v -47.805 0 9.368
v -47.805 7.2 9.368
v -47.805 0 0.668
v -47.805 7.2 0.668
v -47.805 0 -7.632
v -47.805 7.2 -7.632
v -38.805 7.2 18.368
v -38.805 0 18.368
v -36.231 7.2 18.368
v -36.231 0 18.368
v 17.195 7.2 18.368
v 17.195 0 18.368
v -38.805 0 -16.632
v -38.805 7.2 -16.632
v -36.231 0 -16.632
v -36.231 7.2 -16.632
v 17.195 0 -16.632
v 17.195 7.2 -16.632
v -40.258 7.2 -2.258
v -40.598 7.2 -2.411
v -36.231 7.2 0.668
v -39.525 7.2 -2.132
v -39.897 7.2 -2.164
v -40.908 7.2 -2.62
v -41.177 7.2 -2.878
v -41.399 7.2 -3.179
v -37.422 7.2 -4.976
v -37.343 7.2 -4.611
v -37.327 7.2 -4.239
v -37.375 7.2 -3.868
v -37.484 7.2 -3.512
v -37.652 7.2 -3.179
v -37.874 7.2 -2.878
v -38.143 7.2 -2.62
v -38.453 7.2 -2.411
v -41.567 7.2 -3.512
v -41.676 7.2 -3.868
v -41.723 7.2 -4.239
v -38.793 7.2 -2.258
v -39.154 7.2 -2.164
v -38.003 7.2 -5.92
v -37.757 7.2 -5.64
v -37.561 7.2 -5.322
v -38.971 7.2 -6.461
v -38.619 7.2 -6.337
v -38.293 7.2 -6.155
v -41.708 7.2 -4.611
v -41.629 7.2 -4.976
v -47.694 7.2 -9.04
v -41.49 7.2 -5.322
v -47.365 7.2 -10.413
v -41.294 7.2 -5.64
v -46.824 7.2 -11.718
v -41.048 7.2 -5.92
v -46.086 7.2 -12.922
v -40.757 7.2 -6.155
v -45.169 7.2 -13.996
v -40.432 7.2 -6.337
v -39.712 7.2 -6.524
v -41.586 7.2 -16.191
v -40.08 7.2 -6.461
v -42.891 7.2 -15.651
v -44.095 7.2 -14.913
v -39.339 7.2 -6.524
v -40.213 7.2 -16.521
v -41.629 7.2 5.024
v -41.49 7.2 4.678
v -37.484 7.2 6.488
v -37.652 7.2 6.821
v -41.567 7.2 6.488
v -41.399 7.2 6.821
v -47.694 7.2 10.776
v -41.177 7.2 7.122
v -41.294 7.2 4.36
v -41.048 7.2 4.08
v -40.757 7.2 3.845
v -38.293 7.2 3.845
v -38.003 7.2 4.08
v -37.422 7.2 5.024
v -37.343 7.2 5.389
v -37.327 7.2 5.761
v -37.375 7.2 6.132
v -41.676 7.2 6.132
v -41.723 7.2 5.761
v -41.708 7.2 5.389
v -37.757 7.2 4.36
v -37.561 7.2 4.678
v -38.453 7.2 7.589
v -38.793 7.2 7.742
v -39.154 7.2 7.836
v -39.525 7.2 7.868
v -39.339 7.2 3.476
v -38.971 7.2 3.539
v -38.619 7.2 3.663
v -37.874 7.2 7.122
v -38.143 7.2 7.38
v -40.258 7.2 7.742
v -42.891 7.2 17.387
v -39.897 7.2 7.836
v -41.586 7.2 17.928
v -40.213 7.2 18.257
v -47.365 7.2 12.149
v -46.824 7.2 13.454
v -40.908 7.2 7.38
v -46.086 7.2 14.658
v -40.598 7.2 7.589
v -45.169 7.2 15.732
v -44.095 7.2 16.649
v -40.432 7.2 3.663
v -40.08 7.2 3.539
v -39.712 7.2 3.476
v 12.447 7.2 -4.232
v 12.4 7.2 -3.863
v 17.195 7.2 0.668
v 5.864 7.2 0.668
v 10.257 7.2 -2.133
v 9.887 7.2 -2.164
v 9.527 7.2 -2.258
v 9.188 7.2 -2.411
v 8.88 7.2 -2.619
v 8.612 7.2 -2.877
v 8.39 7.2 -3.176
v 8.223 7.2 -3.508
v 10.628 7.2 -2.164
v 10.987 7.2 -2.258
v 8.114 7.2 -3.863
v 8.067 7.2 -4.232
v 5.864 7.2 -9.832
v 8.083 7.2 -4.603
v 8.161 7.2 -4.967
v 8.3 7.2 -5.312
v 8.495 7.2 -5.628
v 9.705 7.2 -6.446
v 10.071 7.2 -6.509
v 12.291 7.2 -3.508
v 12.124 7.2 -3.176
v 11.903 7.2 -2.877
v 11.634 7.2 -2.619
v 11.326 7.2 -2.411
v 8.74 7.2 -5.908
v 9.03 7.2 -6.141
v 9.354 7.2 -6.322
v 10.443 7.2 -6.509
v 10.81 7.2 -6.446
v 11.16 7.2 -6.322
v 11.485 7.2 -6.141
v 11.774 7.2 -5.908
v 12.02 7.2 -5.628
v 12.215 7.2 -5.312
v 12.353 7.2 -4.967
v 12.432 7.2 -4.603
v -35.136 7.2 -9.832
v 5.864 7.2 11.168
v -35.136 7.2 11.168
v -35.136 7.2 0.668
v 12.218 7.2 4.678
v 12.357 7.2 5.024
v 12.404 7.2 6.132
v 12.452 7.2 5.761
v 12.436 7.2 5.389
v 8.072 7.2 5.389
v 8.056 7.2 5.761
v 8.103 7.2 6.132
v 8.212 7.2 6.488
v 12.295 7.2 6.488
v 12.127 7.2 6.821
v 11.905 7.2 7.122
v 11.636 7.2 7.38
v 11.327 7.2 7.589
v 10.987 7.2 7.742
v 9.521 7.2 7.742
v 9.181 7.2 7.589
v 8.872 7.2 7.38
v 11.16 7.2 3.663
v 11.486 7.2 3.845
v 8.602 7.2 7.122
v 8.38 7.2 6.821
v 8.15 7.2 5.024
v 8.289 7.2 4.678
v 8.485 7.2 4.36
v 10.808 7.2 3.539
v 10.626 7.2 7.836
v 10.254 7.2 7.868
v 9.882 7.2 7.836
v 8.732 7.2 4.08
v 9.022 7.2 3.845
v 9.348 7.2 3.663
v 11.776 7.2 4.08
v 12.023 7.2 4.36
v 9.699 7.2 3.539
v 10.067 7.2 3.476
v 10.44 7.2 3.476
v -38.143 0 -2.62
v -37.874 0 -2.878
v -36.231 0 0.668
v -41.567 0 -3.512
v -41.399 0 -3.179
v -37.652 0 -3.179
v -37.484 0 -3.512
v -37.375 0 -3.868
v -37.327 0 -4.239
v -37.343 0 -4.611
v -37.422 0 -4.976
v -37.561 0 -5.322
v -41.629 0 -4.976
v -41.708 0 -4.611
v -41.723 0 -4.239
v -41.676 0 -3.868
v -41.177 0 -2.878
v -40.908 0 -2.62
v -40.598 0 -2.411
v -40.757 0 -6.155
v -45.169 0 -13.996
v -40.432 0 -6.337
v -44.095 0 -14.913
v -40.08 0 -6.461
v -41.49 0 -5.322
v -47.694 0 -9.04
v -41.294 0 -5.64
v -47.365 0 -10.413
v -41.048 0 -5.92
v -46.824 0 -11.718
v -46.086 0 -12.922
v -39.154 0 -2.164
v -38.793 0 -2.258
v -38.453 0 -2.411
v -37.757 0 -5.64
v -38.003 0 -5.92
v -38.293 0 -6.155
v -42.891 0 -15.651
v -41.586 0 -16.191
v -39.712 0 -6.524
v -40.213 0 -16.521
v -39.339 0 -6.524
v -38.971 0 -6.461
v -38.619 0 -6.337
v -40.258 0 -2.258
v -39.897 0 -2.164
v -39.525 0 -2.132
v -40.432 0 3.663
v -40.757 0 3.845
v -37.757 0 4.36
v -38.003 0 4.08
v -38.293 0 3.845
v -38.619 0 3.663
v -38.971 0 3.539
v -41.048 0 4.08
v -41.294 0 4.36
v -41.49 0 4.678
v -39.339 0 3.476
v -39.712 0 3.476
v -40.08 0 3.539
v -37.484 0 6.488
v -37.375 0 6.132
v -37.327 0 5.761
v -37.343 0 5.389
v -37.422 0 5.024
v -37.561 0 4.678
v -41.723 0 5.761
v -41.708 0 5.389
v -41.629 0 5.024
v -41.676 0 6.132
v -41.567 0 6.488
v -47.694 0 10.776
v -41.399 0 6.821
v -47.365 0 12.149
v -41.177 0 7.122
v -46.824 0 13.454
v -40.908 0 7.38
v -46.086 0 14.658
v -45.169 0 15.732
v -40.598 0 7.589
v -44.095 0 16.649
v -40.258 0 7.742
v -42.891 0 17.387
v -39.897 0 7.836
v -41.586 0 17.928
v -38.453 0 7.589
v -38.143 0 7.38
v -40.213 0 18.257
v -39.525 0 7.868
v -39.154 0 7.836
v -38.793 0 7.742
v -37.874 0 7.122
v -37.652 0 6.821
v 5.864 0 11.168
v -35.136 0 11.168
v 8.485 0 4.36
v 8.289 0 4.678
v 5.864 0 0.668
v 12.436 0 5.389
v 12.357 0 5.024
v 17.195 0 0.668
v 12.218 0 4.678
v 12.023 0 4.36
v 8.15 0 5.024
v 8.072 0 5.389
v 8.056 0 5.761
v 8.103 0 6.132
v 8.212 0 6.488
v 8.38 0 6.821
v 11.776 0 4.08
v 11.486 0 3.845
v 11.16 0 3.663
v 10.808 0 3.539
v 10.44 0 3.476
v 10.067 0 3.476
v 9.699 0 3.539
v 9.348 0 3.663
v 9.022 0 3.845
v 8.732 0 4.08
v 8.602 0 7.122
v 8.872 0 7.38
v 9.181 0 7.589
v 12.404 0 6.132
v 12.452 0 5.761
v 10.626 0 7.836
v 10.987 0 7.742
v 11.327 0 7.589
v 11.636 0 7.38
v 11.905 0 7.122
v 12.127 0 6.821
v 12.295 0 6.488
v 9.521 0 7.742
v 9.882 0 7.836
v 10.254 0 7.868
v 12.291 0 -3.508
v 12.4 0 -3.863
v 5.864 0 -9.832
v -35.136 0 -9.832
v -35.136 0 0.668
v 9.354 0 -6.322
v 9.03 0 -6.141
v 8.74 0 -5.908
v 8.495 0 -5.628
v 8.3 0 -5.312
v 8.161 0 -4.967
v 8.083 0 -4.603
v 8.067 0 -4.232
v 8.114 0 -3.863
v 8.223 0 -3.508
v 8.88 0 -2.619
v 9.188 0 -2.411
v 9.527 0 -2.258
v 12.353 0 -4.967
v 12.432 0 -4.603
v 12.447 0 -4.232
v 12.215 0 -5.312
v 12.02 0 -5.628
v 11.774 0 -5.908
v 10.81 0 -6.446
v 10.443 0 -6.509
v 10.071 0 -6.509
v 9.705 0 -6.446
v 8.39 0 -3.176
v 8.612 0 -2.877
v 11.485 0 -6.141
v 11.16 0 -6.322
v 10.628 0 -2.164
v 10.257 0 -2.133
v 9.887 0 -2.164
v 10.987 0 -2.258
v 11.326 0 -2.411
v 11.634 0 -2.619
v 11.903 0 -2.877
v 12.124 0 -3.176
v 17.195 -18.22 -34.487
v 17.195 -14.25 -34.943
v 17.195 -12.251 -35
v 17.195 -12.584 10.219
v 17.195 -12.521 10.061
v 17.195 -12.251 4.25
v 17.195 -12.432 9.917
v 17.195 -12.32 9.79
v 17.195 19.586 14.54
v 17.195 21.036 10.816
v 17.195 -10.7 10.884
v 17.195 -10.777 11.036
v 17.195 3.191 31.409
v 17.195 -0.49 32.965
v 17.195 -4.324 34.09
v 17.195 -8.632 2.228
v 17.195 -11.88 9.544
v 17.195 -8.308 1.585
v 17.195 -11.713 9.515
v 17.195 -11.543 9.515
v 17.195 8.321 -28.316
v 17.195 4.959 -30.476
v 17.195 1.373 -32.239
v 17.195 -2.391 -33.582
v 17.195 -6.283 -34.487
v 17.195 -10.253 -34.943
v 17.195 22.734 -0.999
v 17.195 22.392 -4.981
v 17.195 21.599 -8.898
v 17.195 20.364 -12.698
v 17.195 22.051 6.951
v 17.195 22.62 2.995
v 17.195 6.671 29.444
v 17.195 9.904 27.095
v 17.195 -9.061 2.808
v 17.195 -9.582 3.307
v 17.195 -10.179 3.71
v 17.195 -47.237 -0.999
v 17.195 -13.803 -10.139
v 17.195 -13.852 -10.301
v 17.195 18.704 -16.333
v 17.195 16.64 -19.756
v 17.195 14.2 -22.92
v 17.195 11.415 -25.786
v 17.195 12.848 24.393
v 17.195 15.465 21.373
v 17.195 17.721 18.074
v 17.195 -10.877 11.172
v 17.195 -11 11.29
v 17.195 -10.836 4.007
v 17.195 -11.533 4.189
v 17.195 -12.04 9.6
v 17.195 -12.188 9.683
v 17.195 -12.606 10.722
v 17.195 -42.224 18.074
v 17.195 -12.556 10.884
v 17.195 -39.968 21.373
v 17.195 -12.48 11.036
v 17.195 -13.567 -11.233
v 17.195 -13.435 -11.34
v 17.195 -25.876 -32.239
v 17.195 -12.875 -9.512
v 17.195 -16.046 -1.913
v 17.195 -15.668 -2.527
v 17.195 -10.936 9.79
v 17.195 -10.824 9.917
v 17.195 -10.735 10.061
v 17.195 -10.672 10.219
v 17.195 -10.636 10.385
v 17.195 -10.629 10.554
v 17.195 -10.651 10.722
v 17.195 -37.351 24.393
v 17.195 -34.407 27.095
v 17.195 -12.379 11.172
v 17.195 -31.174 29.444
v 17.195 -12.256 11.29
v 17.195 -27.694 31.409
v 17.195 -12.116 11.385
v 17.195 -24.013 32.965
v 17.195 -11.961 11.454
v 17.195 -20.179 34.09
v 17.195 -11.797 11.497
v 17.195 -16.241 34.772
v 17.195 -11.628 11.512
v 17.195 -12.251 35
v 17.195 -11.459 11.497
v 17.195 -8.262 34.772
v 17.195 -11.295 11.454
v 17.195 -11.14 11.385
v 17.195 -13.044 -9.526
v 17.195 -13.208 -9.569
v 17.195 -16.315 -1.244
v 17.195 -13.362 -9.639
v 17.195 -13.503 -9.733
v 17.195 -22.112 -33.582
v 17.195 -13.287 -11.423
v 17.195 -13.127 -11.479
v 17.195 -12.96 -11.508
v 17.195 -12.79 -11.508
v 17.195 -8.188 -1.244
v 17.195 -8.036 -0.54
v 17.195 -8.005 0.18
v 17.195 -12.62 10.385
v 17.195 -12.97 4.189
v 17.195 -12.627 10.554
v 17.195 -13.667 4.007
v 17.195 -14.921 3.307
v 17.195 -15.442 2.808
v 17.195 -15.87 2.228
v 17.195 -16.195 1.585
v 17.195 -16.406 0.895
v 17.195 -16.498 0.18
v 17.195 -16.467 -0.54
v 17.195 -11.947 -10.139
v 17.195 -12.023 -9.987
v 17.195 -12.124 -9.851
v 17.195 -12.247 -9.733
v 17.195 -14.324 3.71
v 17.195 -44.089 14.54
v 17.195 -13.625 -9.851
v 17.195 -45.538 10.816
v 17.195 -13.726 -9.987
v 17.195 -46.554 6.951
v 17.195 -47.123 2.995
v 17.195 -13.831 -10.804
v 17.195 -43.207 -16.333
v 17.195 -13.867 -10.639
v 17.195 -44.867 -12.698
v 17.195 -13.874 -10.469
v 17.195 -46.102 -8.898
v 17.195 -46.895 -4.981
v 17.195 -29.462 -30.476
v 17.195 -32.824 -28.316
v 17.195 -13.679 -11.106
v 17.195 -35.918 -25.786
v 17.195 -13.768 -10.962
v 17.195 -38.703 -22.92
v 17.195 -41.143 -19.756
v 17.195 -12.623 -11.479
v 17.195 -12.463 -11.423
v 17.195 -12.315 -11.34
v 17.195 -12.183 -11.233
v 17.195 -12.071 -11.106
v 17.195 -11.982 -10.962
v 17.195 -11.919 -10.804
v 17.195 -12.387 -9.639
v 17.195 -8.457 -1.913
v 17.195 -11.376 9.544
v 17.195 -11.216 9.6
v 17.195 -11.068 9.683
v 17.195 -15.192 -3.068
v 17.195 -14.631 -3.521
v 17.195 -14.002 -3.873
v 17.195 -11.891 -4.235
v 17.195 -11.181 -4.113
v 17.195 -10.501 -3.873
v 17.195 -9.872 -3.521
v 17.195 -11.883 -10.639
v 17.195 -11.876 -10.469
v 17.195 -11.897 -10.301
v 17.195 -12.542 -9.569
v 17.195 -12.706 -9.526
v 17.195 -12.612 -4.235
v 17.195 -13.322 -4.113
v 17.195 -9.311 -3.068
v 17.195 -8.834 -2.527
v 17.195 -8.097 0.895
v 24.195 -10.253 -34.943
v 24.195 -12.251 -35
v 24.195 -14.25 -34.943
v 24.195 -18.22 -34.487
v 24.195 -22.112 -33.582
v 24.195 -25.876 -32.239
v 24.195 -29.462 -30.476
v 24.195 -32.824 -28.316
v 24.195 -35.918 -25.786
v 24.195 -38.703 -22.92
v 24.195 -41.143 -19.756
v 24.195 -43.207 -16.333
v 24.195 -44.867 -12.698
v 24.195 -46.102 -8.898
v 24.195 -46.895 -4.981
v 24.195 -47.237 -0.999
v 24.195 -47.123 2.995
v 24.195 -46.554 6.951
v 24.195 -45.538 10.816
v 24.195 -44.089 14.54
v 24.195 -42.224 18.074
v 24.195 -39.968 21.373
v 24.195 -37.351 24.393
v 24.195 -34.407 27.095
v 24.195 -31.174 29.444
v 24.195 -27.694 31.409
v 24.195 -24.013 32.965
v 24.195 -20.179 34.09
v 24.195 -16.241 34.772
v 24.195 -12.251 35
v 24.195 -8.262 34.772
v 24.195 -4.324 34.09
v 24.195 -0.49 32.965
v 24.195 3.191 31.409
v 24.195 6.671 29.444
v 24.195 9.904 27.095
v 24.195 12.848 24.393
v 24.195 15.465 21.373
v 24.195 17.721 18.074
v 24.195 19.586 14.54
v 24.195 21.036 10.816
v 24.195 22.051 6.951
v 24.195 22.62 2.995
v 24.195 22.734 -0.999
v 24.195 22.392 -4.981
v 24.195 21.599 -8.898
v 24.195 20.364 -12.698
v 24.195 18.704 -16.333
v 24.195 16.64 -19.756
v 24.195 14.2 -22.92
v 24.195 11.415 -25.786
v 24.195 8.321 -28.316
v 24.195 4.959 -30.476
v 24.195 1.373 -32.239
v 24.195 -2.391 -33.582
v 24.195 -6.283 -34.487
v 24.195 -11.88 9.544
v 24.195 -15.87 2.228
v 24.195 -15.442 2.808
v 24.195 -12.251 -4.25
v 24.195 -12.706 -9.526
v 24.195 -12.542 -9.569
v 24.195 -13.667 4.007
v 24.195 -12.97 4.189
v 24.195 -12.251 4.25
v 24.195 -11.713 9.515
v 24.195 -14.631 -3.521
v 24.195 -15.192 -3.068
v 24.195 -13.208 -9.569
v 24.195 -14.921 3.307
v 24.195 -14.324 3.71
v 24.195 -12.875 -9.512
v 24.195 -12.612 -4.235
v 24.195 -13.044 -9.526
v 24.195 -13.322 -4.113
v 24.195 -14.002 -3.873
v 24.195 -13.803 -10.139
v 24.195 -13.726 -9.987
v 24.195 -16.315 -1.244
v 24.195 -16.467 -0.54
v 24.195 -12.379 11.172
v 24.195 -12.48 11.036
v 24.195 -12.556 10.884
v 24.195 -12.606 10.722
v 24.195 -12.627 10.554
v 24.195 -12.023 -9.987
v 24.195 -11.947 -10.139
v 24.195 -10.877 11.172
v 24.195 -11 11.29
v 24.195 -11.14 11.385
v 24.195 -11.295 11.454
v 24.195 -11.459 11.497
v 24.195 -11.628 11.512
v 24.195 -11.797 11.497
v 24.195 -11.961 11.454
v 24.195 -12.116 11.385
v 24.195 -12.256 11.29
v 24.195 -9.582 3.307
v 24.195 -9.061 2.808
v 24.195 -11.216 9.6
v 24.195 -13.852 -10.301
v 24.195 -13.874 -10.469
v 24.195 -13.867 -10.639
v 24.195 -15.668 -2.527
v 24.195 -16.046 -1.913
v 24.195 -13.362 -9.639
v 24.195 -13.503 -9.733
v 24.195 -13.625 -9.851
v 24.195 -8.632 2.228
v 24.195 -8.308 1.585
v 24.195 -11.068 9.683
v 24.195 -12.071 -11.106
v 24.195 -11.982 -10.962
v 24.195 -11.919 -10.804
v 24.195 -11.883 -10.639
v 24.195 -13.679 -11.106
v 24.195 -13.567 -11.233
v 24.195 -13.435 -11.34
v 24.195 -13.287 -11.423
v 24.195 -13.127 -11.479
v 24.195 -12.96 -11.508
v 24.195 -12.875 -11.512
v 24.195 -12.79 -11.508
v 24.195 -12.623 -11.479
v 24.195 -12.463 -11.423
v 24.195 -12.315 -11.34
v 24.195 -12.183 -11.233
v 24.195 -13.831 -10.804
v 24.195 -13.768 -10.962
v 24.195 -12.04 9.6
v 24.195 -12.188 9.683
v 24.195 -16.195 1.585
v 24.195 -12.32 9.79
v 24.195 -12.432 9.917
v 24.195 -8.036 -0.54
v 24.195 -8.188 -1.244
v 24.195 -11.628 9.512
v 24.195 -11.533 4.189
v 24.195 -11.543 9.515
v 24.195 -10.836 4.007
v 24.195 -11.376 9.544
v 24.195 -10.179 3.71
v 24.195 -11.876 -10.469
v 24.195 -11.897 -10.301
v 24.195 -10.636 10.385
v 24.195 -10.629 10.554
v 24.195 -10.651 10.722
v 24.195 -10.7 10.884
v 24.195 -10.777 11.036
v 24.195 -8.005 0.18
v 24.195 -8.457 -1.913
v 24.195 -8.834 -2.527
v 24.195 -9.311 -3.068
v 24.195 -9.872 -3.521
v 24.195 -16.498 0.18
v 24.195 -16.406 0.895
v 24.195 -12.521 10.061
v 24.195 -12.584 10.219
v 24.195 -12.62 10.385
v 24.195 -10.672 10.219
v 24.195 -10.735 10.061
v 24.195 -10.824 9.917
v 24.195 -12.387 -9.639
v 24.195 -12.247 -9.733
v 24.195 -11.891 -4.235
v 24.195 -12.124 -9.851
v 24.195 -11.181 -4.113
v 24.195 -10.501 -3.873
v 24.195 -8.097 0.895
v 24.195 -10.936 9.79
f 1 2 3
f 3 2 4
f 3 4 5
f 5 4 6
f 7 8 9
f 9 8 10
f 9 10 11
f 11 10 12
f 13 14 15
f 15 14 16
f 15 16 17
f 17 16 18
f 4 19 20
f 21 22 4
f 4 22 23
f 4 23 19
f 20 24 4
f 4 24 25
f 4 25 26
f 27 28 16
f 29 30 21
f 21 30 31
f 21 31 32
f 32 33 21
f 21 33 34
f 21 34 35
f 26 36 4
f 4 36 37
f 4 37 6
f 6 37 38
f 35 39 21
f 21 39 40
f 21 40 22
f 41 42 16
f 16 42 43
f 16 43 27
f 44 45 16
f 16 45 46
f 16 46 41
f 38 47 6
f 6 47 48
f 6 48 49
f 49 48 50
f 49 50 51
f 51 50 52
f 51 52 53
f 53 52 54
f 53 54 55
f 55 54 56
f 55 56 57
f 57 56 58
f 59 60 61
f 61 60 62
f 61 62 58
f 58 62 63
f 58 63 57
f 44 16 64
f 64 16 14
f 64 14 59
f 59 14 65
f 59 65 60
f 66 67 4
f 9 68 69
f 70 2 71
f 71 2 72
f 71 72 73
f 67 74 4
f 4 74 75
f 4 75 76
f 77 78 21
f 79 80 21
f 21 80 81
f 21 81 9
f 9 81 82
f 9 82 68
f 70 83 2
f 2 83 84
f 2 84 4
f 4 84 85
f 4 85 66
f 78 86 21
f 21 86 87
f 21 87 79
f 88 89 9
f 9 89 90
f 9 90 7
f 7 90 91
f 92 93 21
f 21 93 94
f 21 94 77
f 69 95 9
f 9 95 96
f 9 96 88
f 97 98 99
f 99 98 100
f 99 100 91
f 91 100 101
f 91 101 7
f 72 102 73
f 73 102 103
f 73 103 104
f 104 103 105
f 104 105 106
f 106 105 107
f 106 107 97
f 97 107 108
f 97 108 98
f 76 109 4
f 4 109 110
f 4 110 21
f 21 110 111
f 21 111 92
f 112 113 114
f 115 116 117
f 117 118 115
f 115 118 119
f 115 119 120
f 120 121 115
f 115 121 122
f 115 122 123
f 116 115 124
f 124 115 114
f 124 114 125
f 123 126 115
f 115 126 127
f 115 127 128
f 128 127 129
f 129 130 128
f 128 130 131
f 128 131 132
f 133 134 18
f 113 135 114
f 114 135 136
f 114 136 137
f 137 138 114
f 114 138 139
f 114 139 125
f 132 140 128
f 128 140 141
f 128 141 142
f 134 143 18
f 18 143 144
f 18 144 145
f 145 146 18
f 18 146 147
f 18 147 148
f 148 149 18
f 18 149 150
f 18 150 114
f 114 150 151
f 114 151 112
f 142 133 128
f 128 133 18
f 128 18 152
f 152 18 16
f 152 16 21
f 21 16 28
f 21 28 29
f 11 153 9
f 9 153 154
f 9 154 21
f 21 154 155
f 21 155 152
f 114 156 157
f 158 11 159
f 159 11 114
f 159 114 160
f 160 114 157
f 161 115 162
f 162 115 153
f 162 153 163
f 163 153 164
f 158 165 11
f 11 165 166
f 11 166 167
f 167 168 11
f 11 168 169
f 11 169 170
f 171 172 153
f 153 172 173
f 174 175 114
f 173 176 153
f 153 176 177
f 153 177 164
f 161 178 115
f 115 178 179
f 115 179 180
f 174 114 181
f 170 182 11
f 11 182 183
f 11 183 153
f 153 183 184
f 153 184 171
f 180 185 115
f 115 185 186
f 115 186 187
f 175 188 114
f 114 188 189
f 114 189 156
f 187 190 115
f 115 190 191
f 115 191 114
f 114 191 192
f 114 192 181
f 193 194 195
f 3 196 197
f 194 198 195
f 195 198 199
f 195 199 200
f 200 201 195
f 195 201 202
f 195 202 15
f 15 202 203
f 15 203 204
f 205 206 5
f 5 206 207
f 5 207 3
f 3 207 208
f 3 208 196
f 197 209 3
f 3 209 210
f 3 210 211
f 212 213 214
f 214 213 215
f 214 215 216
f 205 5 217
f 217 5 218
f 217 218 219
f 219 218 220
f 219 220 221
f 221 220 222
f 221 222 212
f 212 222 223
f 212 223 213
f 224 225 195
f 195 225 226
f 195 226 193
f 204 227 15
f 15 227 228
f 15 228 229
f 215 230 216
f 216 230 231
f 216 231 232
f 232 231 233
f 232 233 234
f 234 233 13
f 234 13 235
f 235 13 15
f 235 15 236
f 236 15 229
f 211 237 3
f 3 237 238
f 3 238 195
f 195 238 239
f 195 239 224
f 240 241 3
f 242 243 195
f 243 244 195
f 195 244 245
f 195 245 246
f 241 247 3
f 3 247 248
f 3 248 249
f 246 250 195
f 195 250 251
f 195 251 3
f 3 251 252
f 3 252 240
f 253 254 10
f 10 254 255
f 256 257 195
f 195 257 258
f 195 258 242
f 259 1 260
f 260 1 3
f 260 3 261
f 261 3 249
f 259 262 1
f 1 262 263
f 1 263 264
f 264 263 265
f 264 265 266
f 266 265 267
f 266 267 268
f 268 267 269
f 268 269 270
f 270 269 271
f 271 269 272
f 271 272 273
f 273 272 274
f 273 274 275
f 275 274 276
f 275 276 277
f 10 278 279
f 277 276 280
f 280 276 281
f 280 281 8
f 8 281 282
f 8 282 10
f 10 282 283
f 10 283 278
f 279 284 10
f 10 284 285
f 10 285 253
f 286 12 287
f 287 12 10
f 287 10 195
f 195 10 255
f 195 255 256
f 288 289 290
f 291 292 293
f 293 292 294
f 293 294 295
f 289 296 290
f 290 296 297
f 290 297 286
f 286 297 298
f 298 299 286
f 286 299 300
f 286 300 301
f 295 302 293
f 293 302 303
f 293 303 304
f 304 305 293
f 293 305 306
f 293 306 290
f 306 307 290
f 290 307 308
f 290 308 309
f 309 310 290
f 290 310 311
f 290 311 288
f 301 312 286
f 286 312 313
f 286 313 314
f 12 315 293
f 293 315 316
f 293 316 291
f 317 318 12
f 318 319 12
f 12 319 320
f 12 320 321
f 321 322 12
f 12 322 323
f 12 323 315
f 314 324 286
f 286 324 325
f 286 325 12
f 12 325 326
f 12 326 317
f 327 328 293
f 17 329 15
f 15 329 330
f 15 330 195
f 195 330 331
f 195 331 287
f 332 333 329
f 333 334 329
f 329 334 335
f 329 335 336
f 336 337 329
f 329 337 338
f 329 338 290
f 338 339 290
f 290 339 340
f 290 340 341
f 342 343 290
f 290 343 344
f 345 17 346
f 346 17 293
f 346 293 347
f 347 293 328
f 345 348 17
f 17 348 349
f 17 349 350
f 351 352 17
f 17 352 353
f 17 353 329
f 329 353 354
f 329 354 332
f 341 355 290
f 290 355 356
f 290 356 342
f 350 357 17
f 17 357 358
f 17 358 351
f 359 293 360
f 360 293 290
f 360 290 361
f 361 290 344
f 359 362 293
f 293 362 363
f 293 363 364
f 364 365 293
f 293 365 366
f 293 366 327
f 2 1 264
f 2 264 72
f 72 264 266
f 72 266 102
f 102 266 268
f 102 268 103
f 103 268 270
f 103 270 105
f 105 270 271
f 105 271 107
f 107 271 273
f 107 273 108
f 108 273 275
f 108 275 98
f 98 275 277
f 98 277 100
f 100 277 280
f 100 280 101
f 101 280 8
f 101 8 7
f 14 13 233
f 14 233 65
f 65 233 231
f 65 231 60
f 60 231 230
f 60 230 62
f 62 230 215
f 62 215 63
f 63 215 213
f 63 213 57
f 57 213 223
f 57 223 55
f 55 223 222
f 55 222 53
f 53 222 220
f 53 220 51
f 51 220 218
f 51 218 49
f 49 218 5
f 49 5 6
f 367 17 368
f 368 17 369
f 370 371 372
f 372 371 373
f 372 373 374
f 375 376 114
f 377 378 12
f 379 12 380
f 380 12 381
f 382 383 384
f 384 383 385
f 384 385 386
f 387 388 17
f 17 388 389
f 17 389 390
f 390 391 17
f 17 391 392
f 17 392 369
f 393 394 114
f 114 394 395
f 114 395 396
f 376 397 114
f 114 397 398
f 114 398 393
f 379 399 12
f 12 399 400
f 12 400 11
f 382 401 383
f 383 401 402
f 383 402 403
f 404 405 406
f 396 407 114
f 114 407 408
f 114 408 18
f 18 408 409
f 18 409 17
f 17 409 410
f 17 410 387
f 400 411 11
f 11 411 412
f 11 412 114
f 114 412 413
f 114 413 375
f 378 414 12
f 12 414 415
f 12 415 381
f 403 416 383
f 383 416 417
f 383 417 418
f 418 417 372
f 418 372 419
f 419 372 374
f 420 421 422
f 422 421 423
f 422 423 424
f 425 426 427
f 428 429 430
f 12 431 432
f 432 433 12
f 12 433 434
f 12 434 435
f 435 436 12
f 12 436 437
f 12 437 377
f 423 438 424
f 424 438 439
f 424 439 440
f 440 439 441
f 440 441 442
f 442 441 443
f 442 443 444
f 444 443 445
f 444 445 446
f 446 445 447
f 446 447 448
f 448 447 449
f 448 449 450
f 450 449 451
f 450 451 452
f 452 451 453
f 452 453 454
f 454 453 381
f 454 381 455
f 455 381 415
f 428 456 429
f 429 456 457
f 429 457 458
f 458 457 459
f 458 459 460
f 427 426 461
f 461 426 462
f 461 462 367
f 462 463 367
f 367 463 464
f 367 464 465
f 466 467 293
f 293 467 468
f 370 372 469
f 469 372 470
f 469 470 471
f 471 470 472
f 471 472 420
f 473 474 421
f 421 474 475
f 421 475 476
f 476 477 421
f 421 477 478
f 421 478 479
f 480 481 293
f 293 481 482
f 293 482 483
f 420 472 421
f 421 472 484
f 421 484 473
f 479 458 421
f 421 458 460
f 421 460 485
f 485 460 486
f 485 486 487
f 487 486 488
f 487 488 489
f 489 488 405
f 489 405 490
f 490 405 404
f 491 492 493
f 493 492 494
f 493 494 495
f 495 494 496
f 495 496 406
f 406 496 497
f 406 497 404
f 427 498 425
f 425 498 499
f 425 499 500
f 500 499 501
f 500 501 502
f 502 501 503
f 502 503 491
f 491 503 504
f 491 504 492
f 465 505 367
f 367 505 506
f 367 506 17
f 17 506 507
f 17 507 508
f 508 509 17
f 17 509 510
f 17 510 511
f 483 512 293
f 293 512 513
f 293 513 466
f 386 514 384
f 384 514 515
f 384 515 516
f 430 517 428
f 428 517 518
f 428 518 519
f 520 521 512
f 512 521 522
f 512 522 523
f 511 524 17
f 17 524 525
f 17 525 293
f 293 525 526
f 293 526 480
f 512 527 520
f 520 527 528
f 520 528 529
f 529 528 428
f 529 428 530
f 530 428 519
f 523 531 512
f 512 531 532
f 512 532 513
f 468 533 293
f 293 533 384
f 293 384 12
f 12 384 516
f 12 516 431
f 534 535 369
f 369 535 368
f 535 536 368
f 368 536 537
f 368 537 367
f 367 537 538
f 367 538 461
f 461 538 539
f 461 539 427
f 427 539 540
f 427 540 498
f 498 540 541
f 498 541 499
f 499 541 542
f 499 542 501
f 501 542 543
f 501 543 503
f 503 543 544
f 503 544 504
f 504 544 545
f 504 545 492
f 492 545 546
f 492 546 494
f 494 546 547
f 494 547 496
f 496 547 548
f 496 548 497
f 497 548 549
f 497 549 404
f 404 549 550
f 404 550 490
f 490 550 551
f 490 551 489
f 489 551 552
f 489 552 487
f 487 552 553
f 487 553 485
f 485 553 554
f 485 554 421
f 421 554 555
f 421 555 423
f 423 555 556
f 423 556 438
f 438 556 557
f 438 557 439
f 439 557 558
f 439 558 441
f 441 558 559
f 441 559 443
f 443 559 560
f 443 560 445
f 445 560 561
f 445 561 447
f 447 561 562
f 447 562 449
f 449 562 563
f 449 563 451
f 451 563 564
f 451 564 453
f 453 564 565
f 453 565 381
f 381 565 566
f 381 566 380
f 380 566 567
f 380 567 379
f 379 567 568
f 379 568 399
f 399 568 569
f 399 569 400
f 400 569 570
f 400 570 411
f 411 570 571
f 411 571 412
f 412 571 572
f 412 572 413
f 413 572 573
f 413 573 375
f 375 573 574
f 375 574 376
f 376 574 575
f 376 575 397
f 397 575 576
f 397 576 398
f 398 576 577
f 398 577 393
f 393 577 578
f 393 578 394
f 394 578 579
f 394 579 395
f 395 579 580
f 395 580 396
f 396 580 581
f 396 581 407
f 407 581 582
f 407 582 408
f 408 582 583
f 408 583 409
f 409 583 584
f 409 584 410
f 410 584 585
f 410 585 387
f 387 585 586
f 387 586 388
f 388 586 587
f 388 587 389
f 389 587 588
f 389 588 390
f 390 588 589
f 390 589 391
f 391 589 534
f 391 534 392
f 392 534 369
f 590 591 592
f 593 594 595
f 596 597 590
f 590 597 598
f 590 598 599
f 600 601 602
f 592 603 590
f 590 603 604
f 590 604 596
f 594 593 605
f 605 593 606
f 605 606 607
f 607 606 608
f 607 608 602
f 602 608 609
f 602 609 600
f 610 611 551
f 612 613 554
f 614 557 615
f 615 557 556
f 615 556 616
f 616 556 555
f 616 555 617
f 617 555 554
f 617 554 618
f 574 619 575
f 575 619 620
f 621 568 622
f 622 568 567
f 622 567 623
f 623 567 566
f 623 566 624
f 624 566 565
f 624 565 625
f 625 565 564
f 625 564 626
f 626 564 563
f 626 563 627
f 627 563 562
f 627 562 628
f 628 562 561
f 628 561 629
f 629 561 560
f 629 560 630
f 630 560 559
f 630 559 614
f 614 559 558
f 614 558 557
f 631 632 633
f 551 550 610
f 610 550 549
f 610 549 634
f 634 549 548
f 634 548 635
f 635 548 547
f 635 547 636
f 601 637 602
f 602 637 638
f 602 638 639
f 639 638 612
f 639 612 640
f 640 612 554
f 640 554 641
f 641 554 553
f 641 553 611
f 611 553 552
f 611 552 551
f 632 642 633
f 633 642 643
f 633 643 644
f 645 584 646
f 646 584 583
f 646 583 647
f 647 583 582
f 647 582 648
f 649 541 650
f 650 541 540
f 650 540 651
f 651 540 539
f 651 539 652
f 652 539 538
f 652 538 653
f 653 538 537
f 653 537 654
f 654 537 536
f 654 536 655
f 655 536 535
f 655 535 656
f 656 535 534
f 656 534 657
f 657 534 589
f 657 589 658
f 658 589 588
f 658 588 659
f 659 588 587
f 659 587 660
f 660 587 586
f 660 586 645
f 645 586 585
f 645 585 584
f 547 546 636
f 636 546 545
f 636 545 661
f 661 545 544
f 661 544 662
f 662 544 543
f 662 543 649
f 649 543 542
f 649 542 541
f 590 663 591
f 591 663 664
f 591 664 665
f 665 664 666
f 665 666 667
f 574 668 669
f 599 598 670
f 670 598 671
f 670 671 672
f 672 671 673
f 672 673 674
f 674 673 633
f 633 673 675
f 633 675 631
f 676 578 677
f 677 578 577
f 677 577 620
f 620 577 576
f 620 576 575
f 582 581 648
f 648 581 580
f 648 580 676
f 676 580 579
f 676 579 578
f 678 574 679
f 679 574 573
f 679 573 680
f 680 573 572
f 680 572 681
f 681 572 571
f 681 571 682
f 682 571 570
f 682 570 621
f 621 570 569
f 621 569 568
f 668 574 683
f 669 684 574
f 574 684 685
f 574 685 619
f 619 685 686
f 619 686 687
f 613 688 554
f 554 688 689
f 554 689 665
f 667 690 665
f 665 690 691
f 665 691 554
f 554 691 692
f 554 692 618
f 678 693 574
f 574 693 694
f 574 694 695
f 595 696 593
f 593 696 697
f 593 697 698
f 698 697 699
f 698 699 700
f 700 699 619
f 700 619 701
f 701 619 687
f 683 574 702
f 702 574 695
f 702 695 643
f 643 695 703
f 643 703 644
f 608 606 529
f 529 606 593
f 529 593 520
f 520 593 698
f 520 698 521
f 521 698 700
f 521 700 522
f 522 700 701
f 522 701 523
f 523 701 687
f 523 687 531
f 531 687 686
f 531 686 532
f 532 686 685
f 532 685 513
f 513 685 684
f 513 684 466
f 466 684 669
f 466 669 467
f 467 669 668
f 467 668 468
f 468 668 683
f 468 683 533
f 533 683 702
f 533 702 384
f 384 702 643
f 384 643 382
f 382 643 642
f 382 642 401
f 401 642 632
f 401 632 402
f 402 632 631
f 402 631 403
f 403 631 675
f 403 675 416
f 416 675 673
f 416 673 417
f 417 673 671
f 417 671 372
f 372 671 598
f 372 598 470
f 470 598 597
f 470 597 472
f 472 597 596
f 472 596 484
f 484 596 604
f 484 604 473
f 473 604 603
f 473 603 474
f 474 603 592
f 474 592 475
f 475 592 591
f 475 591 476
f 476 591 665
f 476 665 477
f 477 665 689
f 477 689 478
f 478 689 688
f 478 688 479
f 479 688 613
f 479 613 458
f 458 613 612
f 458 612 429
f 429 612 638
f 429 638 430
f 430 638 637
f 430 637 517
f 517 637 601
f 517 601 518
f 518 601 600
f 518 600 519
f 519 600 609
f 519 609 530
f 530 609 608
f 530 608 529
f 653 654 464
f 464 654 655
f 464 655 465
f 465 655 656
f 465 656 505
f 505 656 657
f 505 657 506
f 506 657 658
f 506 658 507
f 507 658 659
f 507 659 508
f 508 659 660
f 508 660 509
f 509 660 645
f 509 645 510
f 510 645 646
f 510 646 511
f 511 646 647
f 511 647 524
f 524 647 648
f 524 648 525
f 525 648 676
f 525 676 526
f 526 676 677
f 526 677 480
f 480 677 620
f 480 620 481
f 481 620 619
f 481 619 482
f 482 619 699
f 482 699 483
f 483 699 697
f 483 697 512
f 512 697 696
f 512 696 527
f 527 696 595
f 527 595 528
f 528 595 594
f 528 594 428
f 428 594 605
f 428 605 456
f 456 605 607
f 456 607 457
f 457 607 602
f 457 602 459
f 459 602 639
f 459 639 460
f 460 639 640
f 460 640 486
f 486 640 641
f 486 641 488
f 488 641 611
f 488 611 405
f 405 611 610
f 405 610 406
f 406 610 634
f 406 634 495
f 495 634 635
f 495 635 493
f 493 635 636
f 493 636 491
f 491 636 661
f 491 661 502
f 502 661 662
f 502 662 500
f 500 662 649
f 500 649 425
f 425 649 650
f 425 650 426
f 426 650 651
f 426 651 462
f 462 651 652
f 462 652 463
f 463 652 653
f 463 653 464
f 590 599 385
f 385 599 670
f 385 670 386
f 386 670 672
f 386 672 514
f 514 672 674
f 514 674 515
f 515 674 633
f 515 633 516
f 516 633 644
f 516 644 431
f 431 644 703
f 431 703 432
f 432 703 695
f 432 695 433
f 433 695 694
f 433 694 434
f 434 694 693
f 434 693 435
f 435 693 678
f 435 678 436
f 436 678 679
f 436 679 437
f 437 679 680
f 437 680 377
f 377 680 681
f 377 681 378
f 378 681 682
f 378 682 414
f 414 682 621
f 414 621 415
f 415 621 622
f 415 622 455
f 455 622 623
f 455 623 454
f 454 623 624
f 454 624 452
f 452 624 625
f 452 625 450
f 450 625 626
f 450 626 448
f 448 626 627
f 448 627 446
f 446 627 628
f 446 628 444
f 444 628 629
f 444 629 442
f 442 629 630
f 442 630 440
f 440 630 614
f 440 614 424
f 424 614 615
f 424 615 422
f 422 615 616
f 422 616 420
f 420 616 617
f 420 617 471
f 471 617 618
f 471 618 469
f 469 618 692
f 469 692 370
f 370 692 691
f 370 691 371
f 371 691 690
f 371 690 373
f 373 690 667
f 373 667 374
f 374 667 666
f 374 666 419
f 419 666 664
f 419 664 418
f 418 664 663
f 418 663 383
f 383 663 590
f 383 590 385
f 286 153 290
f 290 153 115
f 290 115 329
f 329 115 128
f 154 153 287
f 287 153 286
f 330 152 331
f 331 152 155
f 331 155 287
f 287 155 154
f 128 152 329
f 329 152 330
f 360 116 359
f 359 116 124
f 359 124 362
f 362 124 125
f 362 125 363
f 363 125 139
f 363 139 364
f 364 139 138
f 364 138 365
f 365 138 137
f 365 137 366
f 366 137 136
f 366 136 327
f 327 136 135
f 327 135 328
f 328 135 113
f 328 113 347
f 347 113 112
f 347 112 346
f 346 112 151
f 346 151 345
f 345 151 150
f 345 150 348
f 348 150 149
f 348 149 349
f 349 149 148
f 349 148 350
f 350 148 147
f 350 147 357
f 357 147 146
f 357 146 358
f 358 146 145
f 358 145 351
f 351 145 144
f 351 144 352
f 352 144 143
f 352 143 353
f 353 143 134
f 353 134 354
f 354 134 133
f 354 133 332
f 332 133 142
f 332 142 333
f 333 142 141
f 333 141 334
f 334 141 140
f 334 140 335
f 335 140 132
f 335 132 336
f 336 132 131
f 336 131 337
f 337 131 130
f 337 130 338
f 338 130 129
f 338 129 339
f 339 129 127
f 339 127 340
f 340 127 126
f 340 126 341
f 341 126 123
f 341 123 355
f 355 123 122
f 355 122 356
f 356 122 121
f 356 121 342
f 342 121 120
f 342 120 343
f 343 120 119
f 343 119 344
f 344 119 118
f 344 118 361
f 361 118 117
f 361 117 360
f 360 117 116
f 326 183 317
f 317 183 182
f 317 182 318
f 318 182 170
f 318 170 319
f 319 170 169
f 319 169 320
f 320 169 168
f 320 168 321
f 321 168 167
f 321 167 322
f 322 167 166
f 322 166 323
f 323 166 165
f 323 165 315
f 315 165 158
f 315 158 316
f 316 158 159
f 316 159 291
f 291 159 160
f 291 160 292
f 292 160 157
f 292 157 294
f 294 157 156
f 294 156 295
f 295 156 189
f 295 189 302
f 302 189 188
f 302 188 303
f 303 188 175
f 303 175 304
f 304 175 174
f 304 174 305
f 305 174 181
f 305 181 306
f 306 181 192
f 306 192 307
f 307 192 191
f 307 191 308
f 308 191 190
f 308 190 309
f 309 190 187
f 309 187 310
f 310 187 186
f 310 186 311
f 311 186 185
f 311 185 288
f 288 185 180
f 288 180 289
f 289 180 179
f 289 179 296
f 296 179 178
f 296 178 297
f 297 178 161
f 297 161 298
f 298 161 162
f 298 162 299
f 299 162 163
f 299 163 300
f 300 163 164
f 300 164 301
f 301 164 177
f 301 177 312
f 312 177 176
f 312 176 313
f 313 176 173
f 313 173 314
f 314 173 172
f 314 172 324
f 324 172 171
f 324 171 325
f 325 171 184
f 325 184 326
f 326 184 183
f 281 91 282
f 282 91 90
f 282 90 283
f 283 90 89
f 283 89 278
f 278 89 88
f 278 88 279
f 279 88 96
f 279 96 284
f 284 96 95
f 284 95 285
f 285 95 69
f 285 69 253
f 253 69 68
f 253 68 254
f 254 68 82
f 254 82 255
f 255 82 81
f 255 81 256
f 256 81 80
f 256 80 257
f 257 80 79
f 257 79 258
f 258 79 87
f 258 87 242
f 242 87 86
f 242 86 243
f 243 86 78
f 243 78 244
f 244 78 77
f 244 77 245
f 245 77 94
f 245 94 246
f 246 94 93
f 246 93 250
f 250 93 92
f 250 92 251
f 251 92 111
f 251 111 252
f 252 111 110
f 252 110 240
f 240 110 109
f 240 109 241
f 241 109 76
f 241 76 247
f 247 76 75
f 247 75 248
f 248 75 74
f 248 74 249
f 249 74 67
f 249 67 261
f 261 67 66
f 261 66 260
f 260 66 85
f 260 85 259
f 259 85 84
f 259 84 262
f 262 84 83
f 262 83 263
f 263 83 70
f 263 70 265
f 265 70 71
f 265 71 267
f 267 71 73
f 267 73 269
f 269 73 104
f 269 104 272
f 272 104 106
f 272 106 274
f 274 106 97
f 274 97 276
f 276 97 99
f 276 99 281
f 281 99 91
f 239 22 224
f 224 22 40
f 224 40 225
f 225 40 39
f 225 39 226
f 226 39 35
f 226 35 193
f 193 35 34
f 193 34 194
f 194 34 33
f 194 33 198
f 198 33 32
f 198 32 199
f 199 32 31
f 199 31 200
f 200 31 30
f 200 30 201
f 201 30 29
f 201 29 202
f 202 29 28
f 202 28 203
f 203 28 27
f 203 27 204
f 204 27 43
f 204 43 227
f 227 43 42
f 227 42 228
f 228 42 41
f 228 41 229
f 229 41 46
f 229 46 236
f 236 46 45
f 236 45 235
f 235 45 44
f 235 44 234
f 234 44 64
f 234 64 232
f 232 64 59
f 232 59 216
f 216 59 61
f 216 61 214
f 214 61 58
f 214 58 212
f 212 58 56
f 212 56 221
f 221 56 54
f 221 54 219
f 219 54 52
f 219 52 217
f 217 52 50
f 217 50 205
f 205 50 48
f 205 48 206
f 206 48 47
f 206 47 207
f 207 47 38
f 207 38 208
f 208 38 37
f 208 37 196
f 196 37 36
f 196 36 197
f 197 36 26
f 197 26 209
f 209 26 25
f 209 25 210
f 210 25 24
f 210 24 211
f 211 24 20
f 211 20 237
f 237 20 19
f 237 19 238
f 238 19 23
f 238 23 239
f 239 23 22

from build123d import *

# Parameters (mm, degrees)
SKETCH1_W           = 65
SKETCH1_H           = 35
BOSS_EXTRUDE1_DEPTH = 7.2
FILLET1_R           = 9
SKETCH5_R           = 2.25
SKETCH5_R_2         = 0.8
CUT_EXTRUDE1_DEPTH  = 52.716073838
SKETCH7_R           = 35
BOSS_EXTRUDE2_DEPTH = 7
CUT_EXTRUDE3_REACH  = 89.651
SKETCH8_R           = 4.25
SKETCH8_R_2         = 1
CUT_EXTRUDE4_REACH  = 82.469
SKETCH9_R           = 2.192172412
SKETCH9_R_2         = 2.2
SKETCH9_W           = 41
SKETCH9_H           = 21


with BuildPart() as part:
    # Sketch1 → Boss-Extrude1 (new body)
    with BuildSketch(Plane(origin=(0, 0, 0), x_dir=(1, 0, 0), z_dir=(0, 1, 0))):
        with Locations((-15.305107108, -0.868016429)):
            Rectangle(SKETCH1_W, SKETCH1_H)
    extrude(amount=BOSS_EXTRUDE1_DEPTH)

    # Fillet1
    fillet1_edges = [part.edges().sort_by_distance(p)[0] for p in [
        (-47.805107108, 3.6, -16.631983571),
        (-47.805107108, 3.6, 18.368016429),
    ]]
    fillet(fillet1_edges, radius=FILLET1_R)

    # Sketch5 → Cut-Extrude1 (cut, through all)
    with BuildSketch(Plane(origin=(0, 7.2, 0), x_dir=(1, 0, 0), z_dir=(0, 1, 0))):
        with Locations(Location((-24.935816815, -0.668016429, 0), (0, 0, 270))):
            Circle(SKETCH5_R)
        with Locations(Location((-28.935816815, -0.669860131, 0), (0, 0, 270))):
            Circle(SKETCH5_R_2)
        with Locations(Location((-20.935816815, -0.669860131, 0), (0, 0, 270))):
            Circle(SKETCH5_R_2)
    extrude(amount=-CUT_EXTRUDE1_DEPTH, mode=Mode.SUBTRACT)

    # Sketch7 → Boss-Extrude2 (add)
    with BuildSketch(Plane(origin=(17.194892892, 0, 0), x_dir=(0, 0, -1), z_dir=(1, 0, 0))):
        with Locations((0, -12.251447975)):
            Circle(SKETCH7_R)
    extrude(amount=BOSS_EXTRUDE2_DEPTH)

    # Sketch8 → Cut-Extrude3 (cut, up to next)
    with BuildSketch(Plane.ZY.offset(-17.194892892), mode=Mode.PRIVATE) as cut_extrude3_sk1:
        with Locations((0, -12.251447975)):
            Circle(SKETCH8_R)
    cut_extrude3_tool1 = extrude(cut_extrude3_sk1.sketch, amount=-CUT_EXTRUDE3_REACH, mode=Mode.PRIVATE) & part.part
    # Sketch8 → Cut-Extrude3 (cut, up to next)
    with BuildSketch(Plane.ZY.offset(-17.194892892), mode=Mode.PRIVATE) as cut_extrude3_sk2:
        with Locations((-10.511534724, -12.874775935)):
            Circle(SKETCH8_R_2)
    cut_extrude3_tool2 = extrude(cut_extrude3_sk2.sketch, amount=-CUT_EXTRUDE3_REACH, mode=Mode.PRIVATE) & part.part
    # Sketch8 → Cut-Extrude3 (cut, up to next)
    with BuildSketch(Plane.ZY.offset(-17.194892892), mode=Mode.PRIVATE) as cut_extrude3_sk3:
        with Locations((10.511534724, -11.628120014)):
            Circle(SKETCH8_R_2)
    cut_extrude3_tool3 = extrude(cut_extrude3_sk3.sketch, amount=-CUT_EXTRUDE3_REACH, mode=Mode.PRIVATE) & part.part
    add(cut_extrude3_tool1.solids().sort_by_distance((17.194893, -12.251448, 0))[0], mode=Mode.SUBTRACT)
    add(cut_extrude3_tool2.solids().sort_by_distance((17.194893, -12.874776, -10.511535))[0], mode=Mode.SUBTRACT)
    add(cut_extrude3_tool3.solids().sort_by_distance((17.194893, -11.62812, 10.511535))[0], mode=Mode.SUBTRACT)

    # Sketch9 → Cut-Extrude4 (cut, up to next)
    with BuildSketch(Plane(origin=(0, 7.2, 0), x_dir=(1, 0, 0), z_dir=(0, 1, 0)), mode=Mode.PRIVATE) as cut_extrude4_sk1:
        with Locations(Location((10.257150233, 4.32491084, 0), (0, 0, 270))):
            Circle(SKETCH9_R)
    cut_extrude4_tool1 = extrude(cut_extrude4_sk1.sketch, amount=-CUT_EXTRUDE4_REACH, mode=Mode.PRIVATE) & part.part
    # Sketch9 → Cut-Extrude4 (cut, up to next)
    with BuildSketch(Plane(origin=(0, 7.2, 0), x_dir=(1, 0, 0), z_dir=(0, 1, 0)), mode=Mode.PRIVATE) as cut_extrude4_sk2:
        with Locations(Location((10.253796486, -5.668016429, 0), (0, 0, 270))):
            Circle(SKETCH9_R_2)
    cut_extrude4_tool2 = extrude(cut_extrude4_sk2.sketch, amount=-CUT_EXTRUDE4_REACH, mode=Mode.PRIVATE) & part.part
    # Sketch9 → Cut-Extrude4 (cut, up to next)
    with BuildSketch(Plane(origin=(0, 7.2, 0), x_dir=(1, 0, 0), z_dir=(0, 1, 0)), mode=Mode.PRIVATE) as cut_extrude4_sk3:
        with Locations(Location((-39.525430116, -5.668016429, 0), (0, 0, 270))):
            Circle(SKETCH9_R_2)
    cut_extrude4_tool3 = extrude(cut_extrude4_sk3.sketch, amount=-CUT_EXTRUDE4_REACH, mode=Mode.PRIVATE) & part.part
    # Sketch9 → Cut-Extrude4 (cut, up to next)
    with BuildSketch(Plane(origin=(0, 7.2, 0), x_dir=(1, 0, 0), z_dir=(0, 1, 0)), mode=Mode.PRIVATE) as cut_extrude4_sk4:
        with Locations(Location((-39.525430116, 4.331983571, 0), (0, 0, 270))):
            Circle(SKETCH9_R_2)
    cut_extrude4_tool4 = extrude(cut_extrude4_sk4.sketch, amount=-CUT_EXTRUDE4_REACH, mode=Mode.PRIVATE) & part.part
    # Sketch9 → Cut-Extrude4 (cut, up to next)
    with BuildSketch(Plane(origin=(0, 7.2, 0), x_dir=(1, 0, 0), z_dir=(0, 1, 0)), mode=Mode.PRIVATE) as cut_extrude4_sk5:
        with Locations((-14.635816815, -0.668016429)):
            Rectangle(SKETCH9_W, SKETCH9_H)
    cut_extrude4_tool5 = extrude(cut_extrude4_sk5.sketch, amount=-CUT_EXTRUDE4_REACH, mode=Mode.PRIVATE) & part.part
    add(cut_extrude4_tool1.solids().sort_by_distance((10.25715, 7.2, -4.324911))[0], mode=Mode.SUBTRACT)
    add(cut_extrude4_tool2.solids().sort_by_distance((10.253796, 7.2, 5.668016))[0], mode=Mode.SUBTRACT)
    add(cut_extrude4_tool3.solids().sort_by_distance((-39.52543, 7.2, 5.668016))[0], mode=Mode.SUBTRACT)
    add(cut_extrude4_tool4.solids().sort_by_distance((-39.52543, 7.2, -4.331984))[0], mode=Mode.SUBTRACT)
    add(cut_extrude4_tool5.solids().sort_by_distance((-14.635817, 7.2, 0.668016))[0], mode=Mode.SUBTRACT)


solid = part.part
